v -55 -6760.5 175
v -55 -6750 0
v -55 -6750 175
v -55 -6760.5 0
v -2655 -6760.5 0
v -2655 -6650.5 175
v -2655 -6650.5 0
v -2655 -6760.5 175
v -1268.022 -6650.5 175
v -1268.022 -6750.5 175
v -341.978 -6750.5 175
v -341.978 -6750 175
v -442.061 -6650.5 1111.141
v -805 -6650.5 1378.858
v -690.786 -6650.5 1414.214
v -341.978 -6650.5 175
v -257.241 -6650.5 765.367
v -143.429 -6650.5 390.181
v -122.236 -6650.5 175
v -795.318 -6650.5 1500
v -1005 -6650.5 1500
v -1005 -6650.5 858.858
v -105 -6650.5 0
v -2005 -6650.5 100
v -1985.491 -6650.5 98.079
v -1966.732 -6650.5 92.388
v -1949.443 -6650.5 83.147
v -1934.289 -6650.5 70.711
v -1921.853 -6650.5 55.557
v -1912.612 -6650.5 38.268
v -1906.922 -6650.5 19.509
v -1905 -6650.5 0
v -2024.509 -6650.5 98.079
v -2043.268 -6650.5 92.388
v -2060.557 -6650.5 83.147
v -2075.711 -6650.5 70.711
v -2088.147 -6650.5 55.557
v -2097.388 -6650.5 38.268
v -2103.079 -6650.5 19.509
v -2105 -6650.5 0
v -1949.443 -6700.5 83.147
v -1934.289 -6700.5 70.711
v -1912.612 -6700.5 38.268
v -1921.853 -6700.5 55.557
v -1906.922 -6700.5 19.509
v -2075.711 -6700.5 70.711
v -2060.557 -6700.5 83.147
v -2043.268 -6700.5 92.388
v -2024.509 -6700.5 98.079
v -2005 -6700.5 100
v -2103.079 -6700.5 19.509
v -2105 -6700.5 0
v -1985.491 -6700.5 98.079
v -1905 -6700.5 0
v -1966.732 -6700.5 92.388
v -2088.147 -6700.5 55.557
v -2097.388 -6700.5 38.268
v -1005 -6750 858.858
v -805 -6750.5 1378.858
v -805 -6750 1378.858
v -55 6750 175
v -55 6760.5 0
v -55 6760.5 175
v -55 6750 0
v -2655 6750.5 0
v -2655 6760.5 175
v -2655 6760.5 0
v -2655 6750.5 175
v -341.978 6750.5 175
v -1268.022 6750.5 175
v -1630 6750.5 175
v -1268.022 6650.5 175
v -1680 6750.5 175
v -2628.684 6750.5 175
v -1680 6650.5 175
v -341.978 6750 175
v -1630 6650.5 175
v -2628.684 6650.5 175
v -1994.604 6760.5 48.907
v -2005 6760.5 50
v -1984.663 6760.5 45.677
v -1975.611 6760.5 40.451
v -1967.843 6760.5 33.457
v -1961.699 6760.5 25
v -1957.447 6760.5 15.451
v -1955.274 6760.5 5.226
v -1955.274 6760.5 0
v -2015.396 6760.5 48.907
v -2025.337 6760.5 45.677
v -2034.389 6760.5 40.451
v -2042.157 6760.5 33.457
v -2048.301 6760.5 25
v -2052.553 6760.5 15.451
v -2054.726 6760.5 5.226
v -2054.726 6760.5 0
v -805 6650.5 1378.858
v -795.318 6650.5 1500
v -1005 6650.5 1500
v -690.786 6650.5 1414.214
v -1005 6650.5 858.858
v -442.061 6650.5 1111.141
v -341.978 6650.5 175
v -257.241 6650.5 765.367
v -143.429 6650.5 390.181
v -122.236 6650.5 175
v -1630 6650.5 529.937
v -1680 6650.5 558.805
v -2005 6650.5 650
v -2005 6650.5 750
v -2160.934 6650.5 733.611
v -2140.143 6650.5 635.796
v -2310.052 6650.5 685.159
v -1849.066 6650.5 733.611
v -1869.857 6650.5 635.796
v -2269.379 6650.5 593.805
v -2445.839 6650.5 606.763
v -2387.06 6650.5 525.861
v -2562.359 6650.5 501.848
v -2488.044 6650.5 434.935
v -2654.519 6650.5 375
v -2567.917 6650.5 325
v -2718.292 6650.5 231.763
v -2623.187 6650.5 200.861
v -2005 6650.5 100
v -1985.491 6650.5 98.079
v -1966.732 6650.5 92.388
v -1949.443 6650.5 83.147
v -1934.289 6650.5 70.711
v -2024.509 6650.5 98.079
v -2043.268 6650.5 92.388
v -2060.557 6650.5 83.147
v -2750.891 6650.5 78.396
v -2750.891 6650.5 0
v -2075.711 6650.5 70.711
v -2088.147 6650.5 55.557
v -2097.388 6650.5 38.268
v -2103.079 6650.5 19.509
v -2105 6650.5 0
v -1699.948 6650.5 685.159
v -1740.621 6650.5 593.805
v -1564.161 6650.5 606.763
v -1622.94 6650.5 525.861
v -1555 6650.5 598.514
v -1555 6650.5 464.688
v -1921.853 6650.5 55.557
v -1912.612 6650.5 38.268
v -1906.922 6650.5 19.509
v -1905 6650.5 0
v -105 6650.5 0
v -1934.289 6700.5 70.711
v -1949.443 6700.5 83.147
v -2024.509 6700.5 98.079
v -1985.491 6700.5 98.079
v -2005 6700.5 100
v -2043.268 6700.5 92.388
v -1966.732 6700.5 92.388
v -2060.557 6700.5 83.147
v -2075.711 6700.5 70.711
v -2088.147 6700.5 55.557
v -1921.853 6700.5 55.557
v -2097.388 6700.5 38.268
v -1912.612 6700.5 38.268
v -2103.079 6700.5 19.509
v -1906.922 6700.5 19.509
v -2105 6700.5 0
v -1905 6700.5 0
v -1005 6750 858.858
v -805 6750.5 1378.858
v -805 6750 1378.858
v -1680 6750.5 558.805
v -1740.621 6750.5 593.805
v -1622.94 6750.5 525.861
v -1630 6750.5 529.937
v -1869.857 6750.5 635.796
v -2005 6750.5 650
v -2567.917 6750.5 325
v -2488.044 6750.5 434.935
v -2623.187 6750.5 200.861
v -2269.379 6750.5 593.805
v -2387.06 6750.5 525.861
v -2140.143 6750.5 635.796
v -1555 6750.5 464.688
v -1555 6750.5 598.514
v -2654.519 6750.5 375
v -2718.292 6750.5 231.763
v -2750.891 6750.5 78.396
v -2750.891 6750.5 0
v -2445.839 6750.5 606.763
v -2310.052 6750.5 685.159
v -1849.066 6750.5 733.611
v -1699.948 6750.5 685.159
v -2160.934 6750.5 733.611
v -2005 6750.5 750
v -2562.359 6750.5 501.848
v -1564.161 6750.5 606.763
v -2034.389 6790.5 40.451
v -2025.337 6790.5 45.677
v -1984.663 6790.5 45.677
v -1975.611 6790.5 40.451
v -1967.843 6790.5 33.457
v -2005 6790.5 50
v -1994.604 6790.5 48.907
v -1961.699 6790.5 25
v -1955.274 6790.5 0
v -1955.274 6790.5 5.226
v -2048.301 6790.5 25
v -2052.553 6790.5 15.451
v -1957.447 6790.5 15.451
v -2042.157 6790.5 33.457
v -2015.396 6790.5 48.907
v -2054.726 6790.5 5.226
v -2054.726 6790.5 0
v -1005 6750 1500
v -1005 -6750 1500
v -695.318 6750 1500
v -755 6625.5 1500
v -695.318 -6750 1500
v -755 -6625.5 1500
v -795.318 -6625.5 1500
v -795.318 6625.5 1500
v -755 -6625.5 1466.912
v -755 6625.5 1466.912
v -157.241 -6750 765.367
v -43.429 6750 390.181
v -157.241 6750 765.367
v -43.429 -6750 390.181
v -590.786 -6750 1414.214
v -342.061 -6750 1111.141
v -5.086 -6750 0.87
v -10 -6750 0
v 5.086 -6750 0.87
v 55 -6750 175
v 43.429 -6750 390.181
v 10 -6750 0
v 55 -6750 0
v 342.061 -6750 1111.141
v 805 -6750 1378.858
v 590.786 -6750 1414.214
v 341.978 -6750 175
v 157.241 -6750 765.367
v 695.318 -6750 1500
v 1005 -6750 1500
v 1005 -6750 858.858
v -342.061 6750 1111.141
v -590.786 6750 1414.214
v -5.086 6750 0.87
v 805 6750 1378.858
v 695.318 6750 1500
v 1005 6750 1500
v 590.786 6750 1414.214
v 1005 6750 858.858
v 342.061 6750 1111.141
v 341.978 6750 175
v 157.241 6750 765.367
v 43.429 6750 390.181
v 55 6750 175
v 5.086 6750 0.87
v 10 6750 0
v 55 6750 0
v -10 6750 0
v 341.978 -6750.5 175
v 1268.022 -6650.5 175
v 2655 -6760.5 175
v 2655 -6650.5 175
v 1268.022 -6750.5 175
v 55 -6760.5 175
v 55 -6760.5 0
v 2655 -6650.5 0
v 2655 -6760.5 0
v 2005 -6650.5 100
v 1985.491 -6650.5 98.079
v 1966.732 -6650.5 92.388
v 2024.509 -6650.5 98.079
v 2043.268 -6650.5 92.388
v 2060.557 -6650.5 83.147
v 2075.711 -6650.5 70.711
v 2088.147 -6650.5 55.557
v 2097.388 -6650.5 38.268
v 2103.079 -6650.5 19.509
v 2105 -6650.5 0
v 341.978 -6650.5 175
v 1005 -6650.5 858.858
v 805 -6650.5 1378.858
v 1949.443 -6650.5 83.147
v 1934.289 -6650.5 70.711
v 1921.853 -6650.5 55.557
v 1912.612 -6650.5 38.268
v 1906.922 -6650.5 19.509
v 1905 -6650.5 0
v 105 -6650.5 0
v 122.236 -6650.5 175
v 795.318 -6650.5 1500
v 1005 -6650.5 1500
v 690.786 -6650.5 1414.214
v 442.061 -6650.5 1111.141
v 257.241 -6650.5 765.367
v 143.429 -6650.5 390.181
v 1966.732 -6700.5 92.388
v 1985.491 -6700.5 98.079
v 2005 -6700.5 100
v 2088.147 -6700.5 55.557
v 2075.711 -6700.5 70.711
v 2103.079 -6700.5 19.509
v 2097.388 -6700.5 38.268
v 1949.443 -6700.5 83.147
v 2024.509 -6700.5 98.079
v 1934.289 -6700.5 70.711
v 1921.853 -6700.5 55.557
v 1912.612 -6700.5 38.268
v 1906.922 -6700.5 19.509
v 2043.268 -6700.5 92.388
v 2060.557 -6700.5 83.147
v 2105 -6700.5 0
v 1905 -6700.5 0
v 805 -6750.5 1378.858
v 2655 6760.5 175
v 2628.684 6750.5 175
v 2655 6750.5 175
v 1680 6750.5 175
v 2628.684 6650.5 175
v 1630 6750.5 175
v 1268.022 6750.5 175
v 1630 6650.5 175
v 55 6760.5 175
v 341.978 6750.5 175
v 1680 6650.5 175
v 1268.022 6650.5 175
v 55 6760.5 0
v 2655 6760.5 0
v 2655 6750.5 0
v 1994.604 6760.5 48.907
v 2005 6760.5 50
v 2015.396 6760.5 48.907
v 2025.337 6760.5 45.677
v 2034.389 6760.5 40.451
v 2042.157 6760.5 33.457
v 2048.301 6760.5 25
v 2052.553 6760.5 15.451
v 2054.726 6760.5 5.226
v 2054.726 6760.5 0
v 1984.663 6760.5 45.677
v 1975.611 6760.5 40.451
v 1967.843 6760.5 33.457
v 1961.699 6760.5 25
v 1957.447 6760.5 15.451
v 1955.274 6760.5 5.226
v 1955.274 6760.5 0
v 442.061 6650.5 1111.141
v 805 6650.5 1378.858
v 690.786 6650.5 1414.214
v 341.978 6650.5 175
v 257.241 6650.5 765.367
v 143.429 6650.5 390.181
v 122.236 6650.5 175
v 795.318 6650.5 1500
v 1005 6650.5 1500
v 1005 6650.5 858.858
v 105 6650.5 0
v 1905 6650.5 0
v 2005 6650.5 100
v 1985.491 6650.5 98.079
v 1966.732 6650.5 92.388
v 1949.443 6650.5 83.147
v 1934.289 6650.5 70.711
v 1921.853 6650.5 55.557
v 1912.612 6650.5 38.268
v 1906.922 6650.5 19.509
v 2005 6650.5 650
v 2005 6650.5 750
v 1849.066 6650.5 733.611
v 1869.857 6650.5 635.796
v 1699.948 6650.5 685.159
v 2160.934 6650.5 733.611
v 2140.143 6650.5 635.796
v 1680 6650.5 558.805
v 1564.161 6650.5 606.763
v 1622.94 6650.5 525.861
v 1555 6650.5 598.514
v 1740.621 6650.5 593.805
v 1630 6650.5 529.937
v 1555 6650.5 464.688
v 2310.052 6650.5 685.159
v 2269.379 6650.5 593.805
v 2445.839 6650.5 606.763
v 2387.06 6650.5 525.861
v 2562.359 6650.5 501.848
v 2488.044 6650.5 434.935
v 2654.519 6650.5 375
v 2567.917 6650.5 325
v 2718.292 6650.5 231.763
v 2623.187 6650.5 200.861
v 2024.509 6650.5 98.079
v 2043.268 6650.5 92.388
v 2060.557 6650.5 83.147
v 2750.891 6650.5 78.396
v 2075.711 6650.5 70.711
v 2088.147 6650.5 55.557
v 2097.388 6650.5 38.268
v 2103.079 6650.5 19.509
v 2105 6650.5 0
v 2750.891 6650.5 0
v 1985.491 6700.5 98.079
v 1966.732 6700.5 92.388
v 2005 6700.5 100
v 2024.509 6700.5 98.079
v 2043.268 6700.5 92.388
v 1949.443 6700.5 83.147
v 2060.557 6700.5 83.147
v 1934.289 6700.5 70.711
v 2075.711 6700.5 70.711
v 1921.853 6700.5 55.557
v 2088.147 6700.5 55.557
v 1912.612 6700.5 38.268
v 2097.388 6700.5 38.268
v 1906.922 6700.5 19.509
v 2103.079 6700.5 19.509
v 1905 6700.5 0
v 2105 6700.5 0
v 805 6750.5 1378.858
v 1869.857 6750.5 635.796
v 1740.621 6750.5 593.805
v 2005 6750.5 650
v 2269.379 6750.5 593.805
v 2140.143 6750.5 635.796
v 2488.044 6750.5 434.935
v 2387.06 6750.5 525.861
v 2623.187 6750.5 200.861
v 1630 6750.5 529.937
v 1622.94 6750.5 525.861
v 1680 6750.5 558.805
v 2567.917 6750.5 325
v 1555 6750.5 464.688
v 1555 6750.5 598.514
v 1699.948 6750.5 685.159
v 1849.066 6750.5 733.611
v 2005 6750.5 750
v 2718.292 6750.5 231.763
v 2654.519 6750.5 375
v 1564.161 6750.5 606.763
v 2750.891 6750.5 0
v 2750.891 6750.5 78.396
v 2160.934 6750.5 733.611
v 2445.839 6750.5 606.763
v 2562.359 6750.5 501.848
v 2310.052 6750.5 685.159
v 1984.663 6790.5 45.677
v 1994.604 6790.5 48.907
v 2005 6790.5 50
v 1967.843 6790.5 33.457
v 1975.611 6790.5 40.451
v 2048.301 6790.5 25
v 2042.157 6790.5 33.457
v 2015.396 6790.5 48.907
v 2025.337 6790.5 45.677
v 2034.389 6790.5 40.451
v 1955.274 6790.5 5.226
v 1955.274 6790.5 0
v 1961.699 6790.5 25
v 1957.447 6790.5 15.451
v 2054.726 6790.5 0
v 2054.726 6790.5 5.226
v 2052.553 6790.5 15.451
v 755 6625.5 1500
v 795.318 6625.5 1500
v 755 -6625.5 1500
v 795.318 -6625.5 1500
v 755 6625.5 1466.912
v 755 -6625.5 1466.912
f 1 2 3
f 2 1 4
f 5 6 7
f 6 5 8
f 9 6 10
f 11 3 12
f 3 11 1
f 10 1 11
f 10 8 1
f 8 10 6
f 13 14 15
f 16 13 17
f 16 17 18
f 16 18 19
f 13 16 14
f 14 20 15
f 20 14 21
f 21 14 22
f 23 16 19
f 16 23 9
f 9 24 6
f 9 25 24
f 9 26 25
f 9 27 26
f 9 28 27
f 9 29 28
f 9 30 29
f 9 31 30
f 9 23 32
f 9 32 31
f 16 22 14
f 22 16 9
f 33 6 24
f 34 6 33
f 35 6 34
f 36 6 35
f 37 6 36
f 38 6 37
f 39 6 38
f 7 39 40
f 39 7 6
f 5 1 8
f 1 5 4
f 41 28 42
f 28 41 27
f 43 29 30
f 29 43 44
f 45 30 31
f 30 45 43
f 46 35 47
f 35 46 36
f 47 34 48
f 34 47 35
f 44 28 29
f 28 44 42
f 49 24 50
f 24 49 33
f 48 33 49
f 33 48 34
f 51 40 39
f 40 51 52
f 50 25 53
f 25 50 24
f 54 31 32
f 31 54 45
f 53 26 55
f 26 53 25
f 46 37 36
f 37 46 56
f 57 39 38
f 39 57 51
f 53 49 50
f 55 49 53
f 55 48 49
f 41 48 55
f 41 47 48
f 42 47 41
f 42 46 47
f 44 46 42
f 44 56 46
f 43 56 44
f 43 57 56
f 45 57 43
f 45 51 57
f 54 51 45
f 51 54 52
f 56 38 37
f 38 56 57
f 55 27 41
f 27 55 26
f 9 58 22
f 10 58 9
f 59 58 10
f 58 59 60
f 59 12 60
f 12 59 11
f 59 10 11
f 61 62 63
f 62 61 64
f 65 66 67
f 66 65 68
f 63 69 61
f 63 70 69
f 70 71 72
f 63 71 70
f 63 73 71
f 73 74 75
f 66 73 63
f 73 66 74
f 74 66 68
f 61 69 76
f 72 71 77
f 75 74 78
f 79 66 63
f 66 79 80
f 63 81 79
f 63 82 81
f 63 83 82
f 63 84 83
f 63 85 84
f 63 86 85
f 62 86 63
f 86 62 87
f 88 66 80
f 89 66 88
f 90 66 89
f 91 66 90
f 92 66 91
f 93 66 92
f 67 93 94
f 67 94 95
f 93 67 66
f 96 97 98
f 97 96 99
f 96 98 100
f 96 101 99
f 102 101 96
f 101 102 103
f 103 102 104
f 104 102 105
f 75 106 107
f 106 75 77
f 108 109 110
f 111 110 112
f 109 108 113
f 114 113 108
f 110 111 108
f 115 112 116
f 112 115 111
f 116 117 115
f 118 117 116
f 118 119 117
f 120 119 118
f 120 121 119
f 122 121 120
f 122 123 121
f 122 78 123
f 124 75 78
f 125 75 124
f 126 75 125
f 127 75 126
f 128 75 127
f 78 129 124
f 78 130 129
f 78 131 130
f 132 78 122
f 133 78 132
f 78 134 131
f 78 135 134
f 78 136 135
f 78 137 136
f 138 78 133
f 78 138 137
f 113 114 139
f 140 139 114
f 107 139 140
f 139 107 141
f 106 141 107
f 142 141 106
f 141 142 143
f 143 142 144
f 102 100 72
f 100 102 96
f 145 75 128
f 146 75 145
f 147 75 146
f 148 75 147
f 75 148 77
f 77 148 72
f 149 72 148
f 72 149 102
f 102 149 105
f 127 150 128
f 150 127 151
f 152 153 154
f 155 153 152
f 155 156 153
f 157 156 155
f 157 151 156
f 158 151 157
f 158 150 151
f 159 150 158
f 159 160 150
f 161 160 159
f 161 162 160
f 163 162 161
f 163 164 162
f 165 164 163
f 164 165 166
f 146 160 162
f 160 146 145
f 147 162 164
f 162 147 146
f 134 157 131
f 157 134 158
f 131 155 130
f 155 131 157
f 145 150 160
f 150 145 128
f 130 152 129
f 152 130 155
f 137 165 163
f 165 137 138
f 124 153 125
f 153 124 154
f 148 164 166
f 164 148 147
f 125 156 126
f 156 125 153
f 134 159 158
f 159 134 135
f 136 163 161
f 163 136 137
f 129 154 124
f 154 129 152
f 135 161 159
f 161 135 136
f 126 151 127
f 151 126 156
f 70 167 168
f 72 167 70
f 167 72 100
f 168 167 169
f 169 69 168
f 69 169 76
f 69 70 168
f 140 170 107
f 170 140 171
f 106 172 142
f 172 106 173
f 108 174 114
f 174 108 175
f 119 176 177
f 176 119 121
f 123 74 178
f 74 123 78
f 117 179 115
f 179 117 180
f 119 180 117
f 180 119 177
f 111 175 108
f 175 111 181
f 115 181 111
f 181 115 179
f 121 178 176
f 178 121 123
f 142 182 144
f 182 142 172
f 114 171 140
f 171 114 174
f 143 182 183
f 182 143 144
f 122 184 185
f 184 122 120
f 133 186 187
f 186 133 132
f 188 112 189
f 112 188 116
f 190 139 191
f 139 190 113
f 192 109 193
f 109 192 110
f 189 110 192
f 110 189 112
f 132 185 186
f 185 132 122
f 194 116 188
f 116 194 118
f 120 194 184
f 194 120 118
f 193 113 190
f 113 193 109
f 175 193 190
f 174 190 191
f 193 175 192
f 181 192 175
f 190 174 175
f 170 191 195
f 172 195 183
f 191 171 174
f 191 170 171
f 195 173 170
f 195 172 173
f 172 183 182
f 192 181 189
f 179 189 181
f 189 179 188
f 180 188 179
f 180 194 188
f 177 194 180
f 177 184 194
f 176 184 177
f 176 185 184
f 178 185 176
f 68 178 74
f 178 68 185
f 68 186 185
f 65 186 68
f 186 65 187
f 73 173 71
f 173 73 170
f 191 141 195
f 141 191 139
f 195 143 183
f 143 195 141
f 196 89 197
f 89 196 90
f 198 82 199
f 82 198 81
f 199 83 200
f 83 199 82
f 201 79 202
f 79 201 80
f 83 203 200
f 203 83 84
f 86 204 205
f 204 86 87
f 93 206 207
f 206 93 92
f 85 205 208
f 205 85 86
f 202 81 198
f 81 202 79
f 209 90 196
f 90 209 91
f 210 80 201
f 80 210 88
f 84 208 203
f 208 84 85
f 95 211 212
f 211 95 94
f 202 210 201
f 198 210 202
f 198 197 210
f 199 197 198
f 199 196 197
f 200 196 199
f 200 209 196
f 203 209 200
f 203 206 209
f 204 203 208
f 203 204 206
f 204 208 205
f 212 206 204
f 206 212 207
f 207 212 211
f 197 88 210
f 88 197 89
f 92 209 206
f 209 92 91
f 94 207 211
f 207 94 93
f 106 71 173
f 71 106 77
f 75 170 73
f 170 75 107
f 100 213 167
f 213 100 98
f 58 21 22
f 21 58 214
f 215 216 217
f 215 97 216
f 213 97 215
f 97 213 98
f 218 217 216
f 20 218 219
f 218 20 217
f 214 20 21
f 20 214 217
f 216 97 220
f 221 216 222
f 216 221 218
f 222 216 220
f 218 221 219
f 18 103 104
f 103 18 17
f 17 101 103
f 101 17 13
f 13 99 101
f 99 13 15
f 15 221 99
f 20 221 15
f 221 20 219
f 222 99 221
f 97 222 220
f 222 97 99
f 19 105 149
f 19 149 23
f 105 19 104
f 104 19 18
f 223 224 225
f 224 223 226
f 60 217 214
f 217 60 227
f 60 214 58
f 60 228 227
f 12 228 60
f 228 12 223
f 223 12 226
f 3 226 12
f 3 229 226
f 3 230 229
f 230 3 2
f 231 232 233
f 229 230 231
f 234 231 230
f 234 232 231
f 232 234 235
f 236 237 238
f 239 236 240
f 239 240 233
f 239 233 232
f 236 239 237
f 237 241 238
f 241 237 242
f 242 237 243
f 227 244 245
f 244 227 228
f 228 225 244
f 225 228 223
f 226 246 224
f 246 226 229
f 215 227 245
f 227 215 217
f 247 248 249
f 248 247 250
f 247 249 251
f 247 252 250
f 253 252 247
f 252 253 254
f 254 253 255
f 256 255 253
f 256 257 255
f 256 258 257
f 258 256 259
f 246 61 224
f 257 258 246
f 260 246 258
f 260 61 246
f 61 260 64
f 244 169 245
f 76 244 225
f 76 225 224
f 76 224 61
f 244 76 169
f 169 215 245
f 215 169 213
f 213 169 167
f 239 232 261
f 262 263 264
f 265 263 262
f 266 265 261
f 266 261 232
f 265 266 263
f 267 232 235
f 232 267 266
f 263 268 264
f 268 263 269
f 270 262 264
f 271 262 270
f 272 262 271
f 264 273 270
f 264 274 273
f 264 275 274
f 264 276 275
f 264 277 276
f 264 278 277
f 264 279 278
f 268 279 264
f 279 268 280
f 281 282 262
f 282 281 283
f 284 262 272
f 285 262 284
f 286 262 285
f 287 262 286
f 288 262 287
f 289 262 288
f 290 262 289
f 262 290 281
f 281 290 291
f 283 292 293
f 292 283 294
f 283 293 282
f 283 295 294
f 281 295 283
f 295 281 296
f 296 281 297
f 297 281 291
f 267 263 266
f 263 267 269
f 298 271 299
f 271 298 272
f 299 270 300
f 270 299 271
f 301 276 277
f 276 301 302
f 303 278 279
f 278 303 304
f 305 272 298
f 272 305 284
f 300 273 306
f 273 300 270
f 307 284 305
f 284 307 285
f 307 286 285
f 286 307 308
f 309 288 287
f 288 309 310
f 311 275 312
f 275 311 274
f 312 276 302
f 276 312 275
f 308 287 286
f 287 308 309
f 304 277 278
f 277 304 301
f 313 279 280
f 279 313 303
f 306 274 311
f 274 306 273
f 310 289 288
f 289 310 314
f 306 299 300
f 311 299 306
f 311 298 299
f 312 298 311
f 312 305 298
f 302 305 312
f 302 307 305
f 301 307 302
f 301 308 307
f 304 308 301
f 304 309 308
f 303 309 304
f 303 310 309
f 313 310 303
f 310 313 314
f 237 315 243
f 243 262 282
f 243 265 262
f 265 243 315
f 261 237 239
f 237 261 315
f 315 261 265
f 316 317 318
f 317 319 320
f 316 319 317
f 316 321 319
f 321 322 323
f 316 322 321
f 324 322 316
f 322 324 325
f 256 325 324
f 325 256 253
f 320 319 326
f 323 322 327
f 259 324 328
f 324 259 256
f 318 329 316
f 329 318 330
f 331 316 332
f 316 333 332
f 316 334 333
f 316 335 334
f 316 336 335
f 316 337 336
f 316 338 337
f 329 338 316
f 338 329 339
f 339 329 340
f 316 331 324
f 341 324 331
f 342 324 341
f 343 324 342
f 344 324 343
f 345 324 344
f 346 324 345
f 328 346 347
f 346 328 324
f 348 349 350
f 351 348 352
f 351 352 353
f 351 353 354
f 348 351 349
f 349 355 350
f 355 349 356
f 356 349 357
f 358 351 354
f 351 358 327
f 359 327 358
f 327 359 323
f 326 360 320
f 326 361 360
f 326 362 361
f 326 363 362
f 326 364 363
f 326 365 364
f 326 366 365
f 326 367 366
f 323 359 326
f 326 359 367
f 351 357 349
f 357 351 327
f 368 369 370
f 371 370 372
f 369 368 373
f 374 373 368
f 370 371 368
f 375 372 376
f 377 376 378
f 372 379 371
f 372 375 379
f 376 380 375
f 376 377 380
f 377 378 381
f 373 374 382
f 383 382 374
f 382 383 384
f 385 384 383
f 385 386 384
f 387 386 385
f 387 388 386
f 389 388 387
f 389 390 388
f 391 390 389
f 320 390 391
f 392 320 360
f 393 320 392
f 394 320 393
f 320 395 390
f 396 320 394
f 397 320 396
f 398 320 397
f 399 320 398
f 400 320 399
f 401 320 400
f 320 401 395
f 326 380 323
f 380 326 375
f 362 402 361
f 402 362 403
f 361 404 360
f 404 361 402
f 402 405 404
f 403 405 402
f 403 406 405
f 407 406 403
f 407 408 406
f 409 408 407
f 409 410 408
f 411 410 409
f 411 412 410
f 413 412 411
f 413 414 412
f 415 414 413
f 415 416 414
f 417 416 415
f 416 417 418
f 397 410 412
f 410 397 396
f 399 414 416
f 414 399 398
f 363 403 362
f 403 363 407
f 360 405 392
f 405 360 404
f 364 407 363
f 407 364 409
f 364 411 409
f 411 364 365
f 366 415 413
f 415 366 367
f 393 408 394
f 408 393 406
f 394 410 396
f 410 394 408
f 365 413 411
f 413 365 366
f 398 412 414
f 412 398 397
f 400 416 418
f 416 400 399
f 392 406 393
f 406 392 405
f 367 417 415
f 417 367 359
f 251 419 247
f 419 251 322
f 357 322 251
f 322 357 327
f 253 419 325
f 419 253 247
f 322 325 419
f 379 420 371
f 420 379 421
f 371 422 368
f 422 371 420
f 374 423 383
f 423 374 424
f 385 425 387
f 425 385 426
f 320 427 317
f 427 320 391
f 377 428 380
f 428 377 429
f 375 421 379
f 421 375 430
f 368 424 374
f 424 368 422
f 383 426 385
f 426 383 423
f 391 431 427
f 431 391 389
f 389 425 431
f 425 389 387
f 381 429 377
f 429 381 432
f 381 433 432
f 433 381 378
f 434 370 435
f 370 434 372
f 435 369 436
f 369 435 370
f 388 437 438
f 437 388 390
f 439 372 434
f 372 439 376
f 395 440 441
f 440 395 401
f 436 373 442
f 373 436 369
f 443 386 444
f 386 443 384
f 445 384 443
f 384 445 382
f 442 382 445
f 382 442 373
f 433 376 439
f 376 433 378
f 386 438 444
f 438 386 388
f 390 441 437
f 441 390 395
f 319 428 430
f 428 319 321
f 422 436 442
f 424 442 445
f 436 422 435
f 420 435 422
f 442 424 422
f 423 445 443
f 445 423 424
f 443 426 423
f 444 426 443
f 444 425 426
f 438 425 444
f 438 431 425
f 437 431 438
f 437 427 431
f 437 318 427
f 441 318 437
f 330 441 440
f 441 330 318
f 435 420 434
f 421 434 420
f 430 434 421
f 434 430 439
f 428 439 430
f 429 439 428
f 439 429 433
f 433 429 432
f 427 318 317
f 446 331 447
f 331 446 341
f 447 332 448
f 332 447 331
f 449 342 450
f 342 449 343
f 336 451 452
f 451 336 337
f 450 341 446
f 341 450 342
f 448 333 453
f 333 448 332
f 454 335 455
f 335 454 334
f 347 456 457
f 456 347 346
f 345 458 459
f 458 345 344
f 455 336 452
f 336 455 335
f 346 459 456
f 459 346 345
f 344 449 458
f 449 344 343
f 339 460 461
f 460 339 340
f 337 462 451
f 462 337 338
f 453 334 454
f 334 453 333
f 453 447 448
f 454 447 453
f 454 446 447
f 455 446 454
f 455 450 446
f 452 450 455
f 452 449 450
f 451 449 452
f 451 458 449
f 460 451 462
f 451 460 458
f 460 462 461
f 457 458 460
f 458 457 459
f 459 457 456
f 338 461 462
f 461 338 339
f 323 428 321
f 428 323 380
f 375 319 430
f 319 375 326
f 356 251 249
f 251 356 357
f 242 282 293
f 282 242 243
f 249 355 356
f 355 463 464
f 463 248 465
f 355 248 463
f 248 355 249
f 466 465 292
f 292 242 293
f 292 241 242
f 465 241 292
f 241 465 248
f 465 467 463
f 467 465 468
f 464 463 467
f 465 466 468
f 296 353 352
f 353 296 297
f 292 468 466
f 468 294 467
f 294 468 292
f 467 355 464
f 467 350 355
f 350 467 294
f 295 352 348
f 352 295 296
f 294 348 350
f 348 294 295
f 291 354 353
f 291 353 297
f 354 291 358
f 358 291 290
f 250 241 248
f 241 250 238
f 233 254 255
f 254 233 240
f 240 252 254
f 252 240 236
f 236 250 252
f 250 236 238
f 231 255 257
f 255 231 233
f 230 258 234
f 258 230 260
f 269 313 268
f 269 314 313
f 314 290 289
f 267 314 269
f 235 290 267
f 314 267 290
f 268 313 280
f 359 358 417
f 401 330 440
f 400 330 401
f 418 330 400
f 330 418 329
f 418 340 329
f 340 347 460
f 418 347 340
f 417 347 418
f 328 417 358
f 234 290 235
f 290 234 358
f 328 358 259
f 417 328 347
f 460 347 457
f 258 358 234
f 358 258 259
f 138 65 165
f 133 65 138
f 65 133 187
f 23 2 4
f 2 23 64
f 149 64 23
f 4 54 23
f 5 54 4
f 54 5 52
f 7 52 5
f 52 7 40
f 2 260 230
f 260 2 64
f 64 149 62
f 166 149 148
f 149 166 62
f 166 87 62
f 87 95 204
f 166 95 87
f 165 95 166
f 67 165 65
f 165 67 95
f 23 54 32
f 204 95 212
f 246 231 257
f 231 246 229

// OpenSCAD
split_roof_for_print=true;

if(split_roof_for_print){
    
    difference(){
    union(){
    translate([-3195,0,0])
    rotate([0,90,0])
    roof();
    translate([3195,0,0])
    rotate([0,-90,0])
    roof();
    }
    
    translate([-4000,-8000,-2000])
    cube([8000,16000,2000]);
    }
    translate([-10,-13500/2,0])
    cube([20,13500,0.87]);
}else
    roof();


module roof(){




color("brown")
translate([0,0,-310]){
 roof_connector();

 difference(){
  translate([0,0,1500])
  rotate([90,0,0])
  cylinder(r=2000,h=13500,center=true,$fn=32);
  
  union(){
    translate([0,0,1500-100])
    rotate([90,0,0])
    cylinder(r=2000,h=13200+101,center=true,$fn=32);
  
    translate([0,0,500]){
      cube([4000,13501,4000],center=true);
      translate([2500,0,2200])
      cube([2000,13501,1000],center=true);
      translate([-2500,0,2200])
      cube([2000,13501,1000],center=true);
      translate([0,0,2000])
      cube([4000,13251,500],center=true);
    }
  }
}

}

}



module roof_connector(){

    
  for(i=[-1:2:1]){
      
      translate([0,(6688+12.5)*i,1500]){
      difference(){
        translate([0,5*i,100+550])
        cube([350,110,1500+1100],center=true);
      
        translate([0,-50*i,0])
        rotate([90,0,0])
        cylinder(r=100,h=100,center=true,$fn=32);
      }
      
      translate([0,0,1200])
      scale([1.3,1,.5])
      rotate([0,45,0])
      cube([1500,100,1500],center=true);
    }
  }
  
  
  translate([0,6688+12.5,1500]){
  
    translate([0,70,0])
    rotate([90,0,0]) 
    cylinder(r=50,h=40,center=true);
    
    difference(){
      rotate([90,0,0]) 
      cylinder(r=750,h=100,center=true);
      
      union(){
        rotate([90,0,0]) 
        cylinder(r=650,h=130,center=true);
        
        translate([0,0,700])
        cube([1300,150,500],center=true);
      }
    }
    translate([0,0,350])
    cube([1250,100,50],center=true);
  }
}
